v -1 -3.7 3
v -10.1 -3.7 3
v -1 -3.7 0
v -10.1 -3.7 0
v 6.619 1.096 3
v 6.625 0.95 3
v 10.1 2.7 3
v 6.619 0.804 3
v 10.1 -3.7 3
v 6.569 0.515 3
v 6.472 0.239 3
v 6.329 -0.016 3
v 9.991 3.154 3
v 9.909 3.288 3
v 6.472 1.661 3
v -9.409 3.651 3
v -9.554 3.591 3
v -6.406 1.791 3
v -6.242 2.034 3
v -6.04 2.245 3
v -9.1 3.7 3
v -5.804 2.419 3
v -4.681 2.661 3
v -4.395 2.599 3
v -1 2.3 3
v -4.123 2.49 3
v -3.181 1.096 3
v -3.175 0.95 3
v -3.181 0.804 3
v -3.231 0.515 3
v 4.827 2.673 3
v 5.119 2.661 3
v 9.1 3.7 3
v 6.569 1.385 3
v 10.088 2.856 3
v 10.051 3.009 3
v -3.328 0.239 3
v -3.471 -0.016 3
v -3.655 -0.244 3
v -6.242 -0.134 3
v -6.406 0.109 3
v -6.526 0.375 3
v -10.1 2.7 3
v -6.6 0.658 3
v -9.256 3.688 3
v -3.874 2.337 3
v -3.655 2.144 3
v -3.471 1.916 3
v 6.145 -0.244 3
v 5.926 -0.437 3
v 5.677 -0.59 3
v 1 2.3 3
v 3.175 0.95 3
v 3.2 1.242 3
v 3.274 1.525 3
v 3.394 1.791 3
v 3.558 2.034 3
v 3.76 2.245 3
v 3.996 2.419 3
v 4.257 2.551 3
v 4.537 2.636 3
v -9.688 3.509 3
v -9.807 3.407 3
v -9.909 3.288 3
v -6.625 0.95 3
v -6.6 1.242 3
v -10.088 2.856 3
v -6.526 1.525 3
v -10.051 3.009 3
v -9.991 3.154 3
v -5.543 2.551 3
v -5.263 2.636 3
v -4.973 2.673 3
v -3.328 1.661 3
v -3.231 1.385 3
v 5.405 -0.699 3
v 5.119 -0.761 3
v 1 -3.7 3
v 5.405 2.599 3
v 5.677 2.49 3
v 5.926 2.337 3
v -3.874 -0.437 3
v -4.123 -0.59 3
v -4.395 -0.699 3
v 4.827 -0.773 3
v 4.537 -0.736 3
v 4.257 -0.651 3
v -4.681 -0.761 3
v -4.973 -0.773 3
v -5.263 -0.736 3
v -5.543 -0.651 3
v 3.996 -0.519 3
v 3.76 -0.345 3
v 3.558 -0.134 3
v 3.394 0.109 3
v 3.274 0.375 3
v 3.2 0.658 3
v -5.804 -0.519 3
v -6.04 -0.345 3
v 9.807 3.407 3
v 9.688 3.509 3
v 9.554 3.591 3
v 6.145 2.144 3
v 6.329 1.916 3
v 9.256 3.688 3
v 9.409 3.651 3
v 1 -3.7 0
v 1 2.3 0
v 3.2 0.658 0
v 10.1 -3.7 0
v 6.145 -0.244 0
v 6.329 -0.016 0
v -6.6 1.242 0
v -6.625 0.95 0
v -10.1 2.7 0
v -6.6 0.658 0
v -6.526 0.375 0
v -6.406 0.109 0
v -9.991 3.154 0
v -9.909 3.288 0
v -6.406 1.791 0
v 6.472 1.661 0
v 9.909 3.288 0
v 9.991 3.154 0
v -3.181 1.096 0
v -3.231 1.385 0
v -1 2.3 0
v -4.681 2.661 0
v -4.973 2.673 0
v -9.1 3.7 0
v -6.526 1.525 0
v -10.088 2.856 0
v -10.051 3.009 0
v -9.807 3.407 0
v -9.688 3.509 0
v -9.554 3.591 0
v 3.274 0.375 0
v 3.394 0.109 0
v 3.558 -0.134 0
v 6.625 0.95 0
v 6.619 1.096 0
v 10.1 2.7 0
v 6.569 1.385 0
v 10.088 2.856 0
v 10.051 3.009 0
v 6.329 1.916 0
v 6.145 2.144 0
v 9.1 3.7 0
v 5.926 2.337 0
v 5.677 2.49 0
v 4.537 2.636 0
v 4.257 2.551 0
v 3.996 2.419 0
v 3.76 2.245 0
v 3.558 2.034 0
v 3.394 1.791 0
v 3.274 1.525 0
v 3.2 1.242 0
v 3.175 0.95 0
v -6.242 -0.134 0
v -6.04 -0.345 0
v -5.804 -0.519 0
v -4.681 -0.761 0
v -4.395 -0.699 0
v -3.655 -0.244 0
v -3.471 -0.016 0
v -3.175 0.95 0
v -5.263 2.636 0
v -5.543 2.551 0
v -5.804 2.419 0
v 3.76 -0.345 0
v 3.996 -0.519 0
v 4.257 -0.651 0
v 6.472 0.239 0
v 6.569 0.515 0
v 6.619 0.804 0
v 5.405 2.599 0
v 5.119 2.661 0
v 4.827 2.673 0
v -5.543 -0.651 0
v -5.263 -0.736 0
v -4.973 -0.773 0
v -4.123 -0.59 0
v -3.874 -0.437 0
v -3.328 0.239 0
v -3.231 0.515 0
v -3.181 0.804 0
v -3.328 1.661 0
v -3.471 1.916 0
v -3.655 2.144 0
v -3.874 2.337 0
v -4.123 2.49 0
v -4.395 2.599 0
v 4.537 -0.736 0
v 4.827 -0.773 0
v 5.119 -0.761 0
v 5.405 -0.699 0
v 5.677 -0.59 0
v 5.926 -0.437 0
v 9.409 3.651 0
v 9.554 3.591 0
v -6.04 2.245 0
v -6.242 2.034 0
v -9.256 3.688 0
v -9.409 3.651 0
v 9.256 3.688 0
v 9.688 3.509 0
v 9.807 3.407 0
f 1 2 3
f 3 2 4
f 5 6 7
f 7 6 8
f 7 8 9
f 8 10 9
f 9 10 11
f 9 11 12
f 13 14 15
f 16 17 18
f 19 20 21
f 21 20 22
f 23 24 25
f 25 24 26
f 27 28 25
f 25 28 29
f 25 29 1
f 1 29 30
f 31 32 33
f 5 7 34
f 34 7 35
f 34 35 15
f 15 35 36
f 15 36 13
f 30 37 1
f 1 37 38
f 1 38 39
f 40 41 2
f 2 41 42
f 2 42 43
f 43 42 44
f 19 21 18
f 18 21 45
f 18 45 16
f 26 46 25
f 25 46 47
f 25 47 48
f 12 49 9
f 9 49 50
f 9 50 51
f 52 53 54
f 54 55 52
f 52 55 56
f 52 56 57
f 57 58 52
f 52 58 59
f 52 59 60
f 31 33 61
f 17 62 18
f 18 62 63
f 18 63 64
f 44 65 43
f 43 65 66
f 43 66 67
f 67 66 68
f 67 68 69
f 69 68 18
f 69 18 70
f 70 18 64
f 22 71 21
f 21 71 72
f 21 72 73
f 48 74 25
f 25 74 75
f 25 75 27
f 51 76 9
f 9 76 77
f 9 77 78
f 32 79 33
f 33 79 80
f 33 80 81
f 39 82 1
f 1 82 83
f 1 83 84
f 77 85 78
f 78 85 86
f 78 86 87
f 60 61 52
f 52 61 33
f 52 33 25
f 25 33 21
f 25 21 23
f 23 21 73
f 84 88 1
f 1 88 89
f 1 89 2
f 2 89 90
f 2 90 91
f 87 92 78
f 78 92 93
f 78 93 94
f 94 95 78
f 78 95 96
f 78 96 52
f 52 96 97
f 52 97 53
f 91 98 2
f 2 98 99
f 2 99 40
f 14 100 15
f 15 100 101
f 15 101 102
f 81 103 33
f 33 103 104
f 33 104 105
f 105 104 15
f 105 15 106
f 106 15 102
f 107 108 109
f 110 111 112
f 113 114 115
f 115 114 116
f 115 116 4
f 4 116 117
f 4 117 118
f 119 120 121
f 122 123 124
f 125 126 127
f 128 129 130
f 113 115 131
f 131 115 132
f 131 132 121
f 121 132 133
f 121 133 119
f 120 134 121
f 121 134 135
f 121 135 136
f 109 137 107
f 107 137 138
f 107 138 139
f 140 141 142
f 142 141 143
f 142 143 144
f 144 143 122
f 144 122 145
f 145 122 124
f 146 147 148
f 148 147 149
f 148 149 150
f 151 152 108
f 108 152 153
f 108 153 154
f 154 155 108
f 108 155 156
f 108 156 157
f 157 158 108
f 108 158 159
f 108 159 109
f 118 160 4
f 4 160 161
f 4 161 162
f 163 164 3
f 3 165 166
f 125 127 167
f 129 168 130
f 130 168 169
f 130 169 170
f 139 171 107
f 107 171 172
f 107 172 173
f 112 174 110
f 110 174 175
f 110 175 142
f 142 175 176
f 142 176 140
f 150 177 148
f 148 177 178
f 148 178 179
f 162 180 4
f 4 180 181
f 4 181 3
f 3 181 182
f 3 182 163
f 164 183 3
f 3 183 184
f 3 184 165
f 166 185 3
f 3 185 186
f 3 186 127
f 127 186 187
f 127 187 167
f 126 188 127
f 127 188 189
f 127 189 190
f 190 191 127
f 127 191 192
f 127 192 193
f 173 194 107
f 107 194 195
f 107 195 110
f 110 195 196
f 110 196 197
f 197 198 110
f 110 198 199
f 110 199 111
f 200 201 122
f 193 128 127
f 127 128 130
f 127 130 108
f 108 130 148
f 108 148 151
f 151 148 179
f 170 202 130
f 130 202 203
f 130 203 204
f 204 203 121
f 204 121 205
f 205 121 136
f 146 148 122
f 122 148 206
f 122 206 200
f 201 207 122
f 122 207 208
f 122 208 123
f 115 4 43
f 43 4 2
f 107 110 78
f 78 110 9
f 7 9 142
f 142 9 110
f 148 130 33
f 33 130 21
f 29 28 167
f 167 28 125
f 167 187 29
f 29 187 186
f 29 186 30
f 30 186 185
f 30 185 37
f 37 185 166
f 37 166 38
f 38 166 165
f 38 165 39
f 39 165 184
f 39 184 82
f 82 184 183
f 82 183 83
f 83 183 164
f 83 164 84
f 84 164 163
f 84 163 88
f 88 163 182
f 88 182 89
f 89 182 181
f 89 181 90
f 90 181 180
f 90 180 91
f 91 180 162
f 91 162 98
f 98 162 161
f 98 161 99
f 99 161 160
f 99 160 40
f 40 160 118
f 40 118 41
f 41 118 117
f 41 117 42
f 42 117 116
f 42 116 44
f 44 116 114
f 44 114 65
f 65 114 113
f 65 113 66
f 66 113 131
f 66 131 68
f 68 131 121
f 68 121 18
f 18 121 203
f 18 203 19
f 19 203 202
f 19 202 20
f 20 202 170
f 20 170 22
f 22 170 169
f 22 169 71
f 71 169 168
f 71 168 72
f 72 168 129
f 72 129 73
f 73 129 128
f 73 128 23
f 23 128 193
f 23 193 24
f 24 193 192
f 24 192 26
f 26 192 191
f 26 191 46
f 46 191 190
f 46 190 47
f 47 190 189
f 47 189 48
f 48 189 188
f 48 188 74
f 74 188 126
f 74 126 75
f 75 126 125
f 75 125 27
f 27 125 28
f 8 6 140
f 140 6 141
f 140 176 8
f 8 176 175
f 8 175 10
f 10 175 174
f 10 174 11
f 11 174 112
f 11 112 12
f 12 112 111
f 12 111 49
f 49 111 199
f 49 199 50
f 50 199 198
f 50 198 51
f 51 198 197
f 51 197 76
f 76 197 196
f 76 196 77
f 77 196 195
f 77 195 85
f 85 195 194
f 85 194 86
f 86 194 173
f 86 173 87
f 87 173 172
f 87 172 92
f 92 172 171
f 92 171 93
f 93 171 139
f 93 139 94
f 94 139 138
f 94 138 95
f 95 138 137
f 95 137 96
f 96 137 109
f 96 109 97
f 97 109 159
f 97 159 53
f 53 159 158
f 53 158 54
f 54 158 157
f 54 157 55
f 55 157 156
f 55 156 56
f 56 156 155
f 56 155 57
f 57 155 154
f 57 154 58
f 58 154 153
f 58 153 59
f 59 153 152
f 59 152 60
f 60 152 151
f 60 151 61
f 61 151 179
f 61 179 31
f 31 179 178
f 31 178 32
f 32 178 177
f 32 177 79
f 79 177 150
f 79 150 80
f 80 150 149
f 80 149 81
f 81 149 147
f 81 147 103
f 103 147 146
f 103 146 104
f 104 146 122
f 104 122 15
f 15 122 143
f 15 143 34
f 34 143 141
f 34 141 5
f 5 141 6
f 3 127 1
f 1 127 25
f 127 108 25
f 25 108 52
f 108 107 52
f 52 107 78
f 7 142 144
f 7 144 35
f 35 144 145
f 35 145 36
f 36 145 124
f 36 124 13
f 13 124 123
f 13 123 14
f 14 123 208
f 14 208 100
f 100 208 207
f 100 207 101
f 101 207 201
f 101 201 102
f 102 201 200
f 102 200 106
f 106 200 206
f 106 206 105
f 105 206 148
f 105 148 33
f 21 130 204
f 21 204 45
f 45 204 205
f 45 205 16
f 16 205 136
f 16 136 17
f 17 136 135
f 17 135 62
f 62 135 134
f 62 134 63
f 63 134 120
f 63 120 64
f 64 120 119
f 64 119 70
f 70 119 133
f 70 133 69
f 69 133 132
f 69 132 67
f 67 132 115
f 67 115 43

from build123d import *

# Parameters (mm, degrees)
SKETCH1_W           = 20.2
SKETCH1_H           = 7.4
SKETCH1_R           = 1.725
BOSS_EXTRUDE1_DEPTH = 3
SKETCH2_W           = 2
SKETCH2_H           = 6
CUT_EXTRUDE1_DEPTH  = 3
FILLET1_R           = 1


with BuildPart() as part:
    # Sketch1 → Boss-Extrude1 (new body)
    with BuildSketch(Plane.XY):
        Rectangle(SKETCH1_W, SKETCH1_H)
        with Locations((-4.9, 0.95)):
            Circle(SKETCH1_R, mode=Mode.SUBTRACT)
        with Locations((4.9, 0.95)):
            Circle(SKETCH1_R, mode=Mode.SUBTRACT)
    extrude(amount=BOSS_EXTRUDE1_DEPTH)

    # Sketch2 → Cut-Extrude1 (cut)
    with BuildSketch(Plane.XY.offset(3)):
        with Locations((0, -0.7)):
            Rectangle(SKETCH2_W, SKETCH2_H)
    extrude(amount=-CUT_EXTRUDE1_DEPTH, mode=Mode.SUBTRACT)

    # Fillet1
    fillet1_edges = [part.edges().sort_by_distance(p)[0] for p in [
        (-10.1, 3.7, 1.5),
        (10.1, 3.7, 1.5),
    ]]
    fillet(fillet1_edges, radius=FILLET1_R)


solid = part.part
